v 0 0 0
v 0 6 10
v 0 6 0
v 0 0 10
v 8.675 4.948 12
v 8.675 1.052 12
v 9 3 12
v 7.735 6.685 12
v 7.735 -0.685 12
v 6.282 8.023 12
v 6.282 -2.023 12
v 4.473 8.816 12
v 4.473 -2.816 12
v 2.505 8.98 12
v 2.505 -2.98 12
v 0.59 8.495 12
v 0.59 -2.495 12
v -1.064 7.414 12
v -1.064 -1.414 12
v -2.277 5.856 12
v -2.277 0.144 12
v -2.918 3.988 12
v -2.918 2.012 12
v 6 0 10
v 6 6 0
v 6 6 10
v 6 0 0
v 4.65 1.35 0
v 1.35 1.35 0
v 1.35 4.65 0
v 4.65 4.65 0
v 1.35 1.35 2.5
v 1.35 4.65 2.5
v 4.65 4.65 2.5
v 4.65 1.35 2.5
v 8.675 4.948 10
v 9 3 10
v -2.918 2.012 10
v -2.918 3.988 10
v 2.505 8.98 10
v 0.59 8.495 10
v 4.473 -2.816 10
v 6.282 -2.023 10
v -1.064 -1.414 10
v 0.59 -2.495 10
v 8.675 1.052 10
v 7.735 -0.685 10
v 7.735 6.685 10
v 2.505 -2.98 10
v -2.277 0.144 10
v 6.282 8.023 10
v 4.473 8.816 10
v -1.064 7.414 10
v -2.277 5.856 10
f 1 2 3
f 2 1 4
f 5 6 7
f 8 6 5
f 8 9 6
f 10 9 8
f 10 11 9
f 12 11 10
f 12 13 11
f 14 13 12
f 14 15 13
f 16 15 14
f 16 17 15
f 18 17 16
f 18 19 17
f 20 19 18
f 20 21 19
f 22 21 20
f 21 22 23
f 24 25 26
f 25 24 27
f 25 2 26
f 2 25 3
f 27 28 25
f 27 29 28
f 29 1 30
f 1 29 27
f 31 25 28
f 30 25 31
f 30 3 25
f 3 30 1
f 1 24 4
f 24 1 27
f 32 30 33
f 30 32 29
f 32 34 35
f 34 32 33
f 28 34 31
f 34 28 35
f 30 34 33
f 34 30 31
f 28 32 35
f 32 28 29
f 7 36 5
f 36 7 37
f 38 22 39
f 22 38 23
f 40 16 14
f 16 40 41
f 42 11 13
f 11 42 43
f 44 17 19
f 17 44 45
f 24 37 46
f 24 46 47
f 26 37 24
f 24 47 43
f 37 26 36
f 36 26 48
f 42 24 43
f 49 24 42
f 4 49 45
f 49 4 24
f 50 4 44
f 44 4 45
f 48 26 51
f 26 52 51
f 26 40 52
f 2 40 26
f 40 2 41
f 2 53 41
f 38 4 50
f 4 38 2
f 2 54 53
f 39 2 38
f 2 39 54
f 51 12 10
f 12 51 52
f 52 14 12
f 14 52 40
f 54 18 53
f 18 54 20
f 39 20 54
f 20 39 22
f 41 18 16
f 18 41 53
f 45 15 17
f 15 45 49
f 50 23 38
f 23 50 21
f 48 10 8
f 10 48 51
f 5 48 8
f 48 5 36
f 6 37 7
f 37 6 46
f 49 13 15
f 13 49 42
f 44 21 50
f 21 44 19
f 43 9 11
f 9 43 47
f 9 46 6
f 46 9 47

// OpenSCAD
union() {
    difference() {
        cube([6,6,12]);
        translate([1.35,1.35,-1]) {
            cube([3.3,3.3,3.5]);
        }
    }
    translate([3, 3, 11]) {
        cylinder(h = 2, r = 6, center = true);
    }
}
